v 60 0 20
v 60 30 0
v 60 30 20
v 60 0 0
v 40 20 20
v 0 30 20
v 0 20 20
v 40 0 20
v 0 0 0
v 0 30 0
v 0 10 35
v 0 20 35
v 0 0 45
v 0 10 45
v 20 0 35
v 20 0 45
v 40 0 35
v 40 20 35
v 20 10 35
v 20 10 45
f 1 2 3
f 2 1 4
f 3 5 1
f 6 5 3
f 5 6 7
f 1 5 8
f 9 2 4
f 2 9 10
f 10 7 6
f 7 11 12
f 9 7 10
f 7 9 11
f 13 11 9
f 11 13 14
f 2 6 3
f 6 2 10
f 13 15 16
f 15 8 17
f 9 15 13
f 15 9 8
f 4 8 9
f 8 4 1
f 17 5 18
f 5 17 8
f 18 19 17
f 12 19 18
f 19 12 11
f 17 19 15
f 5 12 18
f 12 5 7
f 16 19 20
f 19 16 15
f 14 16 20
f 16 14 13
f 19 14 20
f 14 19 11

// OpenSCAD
// Define dimensions for each block
large_block_length = 60;  // Length of the large rectangular block
large_block_width = 30;   // Width of the large rectangular block
large_block_height = 20;  // Height of the large rectangular block

medium_block_length = 40; // Length of the medium rectangular block
medium_block_width = 20;  // Width of the medium rectangular block
medium_block_height = 15; // Height of the medium rectangular block

small_block_length = 20;  // Length of the small rectangular block
small_block_width = 10;   // Width of the small rectangular block
small_block_height = 10;  // Height of the small rectangular block

// Position offsets
layer_1_offset = [0, 0, large_block_height + medium_block_height]; // Position of the small block
layer_2_offset = [0, 0, large_block_height];                       // Position of the medium block
layer_3_offset = [0, 0, 0];                                        // Position of the large block

// Create the large rectangular block (flattened top surface)
translate(layer_3_offset)
cube([large_block_length, large_block_width, large_block_height]);

// Create the medium rectangular block (remove protrusion)
translate(layer_2_offset)
cube([medium_block_length, medium_block_width, medium_block_height]);

// Create the small rectangular block (remove stepped feature)
translate(layer_1_offset)
cube([small_block_length, small_block_width, small_block_height]);
